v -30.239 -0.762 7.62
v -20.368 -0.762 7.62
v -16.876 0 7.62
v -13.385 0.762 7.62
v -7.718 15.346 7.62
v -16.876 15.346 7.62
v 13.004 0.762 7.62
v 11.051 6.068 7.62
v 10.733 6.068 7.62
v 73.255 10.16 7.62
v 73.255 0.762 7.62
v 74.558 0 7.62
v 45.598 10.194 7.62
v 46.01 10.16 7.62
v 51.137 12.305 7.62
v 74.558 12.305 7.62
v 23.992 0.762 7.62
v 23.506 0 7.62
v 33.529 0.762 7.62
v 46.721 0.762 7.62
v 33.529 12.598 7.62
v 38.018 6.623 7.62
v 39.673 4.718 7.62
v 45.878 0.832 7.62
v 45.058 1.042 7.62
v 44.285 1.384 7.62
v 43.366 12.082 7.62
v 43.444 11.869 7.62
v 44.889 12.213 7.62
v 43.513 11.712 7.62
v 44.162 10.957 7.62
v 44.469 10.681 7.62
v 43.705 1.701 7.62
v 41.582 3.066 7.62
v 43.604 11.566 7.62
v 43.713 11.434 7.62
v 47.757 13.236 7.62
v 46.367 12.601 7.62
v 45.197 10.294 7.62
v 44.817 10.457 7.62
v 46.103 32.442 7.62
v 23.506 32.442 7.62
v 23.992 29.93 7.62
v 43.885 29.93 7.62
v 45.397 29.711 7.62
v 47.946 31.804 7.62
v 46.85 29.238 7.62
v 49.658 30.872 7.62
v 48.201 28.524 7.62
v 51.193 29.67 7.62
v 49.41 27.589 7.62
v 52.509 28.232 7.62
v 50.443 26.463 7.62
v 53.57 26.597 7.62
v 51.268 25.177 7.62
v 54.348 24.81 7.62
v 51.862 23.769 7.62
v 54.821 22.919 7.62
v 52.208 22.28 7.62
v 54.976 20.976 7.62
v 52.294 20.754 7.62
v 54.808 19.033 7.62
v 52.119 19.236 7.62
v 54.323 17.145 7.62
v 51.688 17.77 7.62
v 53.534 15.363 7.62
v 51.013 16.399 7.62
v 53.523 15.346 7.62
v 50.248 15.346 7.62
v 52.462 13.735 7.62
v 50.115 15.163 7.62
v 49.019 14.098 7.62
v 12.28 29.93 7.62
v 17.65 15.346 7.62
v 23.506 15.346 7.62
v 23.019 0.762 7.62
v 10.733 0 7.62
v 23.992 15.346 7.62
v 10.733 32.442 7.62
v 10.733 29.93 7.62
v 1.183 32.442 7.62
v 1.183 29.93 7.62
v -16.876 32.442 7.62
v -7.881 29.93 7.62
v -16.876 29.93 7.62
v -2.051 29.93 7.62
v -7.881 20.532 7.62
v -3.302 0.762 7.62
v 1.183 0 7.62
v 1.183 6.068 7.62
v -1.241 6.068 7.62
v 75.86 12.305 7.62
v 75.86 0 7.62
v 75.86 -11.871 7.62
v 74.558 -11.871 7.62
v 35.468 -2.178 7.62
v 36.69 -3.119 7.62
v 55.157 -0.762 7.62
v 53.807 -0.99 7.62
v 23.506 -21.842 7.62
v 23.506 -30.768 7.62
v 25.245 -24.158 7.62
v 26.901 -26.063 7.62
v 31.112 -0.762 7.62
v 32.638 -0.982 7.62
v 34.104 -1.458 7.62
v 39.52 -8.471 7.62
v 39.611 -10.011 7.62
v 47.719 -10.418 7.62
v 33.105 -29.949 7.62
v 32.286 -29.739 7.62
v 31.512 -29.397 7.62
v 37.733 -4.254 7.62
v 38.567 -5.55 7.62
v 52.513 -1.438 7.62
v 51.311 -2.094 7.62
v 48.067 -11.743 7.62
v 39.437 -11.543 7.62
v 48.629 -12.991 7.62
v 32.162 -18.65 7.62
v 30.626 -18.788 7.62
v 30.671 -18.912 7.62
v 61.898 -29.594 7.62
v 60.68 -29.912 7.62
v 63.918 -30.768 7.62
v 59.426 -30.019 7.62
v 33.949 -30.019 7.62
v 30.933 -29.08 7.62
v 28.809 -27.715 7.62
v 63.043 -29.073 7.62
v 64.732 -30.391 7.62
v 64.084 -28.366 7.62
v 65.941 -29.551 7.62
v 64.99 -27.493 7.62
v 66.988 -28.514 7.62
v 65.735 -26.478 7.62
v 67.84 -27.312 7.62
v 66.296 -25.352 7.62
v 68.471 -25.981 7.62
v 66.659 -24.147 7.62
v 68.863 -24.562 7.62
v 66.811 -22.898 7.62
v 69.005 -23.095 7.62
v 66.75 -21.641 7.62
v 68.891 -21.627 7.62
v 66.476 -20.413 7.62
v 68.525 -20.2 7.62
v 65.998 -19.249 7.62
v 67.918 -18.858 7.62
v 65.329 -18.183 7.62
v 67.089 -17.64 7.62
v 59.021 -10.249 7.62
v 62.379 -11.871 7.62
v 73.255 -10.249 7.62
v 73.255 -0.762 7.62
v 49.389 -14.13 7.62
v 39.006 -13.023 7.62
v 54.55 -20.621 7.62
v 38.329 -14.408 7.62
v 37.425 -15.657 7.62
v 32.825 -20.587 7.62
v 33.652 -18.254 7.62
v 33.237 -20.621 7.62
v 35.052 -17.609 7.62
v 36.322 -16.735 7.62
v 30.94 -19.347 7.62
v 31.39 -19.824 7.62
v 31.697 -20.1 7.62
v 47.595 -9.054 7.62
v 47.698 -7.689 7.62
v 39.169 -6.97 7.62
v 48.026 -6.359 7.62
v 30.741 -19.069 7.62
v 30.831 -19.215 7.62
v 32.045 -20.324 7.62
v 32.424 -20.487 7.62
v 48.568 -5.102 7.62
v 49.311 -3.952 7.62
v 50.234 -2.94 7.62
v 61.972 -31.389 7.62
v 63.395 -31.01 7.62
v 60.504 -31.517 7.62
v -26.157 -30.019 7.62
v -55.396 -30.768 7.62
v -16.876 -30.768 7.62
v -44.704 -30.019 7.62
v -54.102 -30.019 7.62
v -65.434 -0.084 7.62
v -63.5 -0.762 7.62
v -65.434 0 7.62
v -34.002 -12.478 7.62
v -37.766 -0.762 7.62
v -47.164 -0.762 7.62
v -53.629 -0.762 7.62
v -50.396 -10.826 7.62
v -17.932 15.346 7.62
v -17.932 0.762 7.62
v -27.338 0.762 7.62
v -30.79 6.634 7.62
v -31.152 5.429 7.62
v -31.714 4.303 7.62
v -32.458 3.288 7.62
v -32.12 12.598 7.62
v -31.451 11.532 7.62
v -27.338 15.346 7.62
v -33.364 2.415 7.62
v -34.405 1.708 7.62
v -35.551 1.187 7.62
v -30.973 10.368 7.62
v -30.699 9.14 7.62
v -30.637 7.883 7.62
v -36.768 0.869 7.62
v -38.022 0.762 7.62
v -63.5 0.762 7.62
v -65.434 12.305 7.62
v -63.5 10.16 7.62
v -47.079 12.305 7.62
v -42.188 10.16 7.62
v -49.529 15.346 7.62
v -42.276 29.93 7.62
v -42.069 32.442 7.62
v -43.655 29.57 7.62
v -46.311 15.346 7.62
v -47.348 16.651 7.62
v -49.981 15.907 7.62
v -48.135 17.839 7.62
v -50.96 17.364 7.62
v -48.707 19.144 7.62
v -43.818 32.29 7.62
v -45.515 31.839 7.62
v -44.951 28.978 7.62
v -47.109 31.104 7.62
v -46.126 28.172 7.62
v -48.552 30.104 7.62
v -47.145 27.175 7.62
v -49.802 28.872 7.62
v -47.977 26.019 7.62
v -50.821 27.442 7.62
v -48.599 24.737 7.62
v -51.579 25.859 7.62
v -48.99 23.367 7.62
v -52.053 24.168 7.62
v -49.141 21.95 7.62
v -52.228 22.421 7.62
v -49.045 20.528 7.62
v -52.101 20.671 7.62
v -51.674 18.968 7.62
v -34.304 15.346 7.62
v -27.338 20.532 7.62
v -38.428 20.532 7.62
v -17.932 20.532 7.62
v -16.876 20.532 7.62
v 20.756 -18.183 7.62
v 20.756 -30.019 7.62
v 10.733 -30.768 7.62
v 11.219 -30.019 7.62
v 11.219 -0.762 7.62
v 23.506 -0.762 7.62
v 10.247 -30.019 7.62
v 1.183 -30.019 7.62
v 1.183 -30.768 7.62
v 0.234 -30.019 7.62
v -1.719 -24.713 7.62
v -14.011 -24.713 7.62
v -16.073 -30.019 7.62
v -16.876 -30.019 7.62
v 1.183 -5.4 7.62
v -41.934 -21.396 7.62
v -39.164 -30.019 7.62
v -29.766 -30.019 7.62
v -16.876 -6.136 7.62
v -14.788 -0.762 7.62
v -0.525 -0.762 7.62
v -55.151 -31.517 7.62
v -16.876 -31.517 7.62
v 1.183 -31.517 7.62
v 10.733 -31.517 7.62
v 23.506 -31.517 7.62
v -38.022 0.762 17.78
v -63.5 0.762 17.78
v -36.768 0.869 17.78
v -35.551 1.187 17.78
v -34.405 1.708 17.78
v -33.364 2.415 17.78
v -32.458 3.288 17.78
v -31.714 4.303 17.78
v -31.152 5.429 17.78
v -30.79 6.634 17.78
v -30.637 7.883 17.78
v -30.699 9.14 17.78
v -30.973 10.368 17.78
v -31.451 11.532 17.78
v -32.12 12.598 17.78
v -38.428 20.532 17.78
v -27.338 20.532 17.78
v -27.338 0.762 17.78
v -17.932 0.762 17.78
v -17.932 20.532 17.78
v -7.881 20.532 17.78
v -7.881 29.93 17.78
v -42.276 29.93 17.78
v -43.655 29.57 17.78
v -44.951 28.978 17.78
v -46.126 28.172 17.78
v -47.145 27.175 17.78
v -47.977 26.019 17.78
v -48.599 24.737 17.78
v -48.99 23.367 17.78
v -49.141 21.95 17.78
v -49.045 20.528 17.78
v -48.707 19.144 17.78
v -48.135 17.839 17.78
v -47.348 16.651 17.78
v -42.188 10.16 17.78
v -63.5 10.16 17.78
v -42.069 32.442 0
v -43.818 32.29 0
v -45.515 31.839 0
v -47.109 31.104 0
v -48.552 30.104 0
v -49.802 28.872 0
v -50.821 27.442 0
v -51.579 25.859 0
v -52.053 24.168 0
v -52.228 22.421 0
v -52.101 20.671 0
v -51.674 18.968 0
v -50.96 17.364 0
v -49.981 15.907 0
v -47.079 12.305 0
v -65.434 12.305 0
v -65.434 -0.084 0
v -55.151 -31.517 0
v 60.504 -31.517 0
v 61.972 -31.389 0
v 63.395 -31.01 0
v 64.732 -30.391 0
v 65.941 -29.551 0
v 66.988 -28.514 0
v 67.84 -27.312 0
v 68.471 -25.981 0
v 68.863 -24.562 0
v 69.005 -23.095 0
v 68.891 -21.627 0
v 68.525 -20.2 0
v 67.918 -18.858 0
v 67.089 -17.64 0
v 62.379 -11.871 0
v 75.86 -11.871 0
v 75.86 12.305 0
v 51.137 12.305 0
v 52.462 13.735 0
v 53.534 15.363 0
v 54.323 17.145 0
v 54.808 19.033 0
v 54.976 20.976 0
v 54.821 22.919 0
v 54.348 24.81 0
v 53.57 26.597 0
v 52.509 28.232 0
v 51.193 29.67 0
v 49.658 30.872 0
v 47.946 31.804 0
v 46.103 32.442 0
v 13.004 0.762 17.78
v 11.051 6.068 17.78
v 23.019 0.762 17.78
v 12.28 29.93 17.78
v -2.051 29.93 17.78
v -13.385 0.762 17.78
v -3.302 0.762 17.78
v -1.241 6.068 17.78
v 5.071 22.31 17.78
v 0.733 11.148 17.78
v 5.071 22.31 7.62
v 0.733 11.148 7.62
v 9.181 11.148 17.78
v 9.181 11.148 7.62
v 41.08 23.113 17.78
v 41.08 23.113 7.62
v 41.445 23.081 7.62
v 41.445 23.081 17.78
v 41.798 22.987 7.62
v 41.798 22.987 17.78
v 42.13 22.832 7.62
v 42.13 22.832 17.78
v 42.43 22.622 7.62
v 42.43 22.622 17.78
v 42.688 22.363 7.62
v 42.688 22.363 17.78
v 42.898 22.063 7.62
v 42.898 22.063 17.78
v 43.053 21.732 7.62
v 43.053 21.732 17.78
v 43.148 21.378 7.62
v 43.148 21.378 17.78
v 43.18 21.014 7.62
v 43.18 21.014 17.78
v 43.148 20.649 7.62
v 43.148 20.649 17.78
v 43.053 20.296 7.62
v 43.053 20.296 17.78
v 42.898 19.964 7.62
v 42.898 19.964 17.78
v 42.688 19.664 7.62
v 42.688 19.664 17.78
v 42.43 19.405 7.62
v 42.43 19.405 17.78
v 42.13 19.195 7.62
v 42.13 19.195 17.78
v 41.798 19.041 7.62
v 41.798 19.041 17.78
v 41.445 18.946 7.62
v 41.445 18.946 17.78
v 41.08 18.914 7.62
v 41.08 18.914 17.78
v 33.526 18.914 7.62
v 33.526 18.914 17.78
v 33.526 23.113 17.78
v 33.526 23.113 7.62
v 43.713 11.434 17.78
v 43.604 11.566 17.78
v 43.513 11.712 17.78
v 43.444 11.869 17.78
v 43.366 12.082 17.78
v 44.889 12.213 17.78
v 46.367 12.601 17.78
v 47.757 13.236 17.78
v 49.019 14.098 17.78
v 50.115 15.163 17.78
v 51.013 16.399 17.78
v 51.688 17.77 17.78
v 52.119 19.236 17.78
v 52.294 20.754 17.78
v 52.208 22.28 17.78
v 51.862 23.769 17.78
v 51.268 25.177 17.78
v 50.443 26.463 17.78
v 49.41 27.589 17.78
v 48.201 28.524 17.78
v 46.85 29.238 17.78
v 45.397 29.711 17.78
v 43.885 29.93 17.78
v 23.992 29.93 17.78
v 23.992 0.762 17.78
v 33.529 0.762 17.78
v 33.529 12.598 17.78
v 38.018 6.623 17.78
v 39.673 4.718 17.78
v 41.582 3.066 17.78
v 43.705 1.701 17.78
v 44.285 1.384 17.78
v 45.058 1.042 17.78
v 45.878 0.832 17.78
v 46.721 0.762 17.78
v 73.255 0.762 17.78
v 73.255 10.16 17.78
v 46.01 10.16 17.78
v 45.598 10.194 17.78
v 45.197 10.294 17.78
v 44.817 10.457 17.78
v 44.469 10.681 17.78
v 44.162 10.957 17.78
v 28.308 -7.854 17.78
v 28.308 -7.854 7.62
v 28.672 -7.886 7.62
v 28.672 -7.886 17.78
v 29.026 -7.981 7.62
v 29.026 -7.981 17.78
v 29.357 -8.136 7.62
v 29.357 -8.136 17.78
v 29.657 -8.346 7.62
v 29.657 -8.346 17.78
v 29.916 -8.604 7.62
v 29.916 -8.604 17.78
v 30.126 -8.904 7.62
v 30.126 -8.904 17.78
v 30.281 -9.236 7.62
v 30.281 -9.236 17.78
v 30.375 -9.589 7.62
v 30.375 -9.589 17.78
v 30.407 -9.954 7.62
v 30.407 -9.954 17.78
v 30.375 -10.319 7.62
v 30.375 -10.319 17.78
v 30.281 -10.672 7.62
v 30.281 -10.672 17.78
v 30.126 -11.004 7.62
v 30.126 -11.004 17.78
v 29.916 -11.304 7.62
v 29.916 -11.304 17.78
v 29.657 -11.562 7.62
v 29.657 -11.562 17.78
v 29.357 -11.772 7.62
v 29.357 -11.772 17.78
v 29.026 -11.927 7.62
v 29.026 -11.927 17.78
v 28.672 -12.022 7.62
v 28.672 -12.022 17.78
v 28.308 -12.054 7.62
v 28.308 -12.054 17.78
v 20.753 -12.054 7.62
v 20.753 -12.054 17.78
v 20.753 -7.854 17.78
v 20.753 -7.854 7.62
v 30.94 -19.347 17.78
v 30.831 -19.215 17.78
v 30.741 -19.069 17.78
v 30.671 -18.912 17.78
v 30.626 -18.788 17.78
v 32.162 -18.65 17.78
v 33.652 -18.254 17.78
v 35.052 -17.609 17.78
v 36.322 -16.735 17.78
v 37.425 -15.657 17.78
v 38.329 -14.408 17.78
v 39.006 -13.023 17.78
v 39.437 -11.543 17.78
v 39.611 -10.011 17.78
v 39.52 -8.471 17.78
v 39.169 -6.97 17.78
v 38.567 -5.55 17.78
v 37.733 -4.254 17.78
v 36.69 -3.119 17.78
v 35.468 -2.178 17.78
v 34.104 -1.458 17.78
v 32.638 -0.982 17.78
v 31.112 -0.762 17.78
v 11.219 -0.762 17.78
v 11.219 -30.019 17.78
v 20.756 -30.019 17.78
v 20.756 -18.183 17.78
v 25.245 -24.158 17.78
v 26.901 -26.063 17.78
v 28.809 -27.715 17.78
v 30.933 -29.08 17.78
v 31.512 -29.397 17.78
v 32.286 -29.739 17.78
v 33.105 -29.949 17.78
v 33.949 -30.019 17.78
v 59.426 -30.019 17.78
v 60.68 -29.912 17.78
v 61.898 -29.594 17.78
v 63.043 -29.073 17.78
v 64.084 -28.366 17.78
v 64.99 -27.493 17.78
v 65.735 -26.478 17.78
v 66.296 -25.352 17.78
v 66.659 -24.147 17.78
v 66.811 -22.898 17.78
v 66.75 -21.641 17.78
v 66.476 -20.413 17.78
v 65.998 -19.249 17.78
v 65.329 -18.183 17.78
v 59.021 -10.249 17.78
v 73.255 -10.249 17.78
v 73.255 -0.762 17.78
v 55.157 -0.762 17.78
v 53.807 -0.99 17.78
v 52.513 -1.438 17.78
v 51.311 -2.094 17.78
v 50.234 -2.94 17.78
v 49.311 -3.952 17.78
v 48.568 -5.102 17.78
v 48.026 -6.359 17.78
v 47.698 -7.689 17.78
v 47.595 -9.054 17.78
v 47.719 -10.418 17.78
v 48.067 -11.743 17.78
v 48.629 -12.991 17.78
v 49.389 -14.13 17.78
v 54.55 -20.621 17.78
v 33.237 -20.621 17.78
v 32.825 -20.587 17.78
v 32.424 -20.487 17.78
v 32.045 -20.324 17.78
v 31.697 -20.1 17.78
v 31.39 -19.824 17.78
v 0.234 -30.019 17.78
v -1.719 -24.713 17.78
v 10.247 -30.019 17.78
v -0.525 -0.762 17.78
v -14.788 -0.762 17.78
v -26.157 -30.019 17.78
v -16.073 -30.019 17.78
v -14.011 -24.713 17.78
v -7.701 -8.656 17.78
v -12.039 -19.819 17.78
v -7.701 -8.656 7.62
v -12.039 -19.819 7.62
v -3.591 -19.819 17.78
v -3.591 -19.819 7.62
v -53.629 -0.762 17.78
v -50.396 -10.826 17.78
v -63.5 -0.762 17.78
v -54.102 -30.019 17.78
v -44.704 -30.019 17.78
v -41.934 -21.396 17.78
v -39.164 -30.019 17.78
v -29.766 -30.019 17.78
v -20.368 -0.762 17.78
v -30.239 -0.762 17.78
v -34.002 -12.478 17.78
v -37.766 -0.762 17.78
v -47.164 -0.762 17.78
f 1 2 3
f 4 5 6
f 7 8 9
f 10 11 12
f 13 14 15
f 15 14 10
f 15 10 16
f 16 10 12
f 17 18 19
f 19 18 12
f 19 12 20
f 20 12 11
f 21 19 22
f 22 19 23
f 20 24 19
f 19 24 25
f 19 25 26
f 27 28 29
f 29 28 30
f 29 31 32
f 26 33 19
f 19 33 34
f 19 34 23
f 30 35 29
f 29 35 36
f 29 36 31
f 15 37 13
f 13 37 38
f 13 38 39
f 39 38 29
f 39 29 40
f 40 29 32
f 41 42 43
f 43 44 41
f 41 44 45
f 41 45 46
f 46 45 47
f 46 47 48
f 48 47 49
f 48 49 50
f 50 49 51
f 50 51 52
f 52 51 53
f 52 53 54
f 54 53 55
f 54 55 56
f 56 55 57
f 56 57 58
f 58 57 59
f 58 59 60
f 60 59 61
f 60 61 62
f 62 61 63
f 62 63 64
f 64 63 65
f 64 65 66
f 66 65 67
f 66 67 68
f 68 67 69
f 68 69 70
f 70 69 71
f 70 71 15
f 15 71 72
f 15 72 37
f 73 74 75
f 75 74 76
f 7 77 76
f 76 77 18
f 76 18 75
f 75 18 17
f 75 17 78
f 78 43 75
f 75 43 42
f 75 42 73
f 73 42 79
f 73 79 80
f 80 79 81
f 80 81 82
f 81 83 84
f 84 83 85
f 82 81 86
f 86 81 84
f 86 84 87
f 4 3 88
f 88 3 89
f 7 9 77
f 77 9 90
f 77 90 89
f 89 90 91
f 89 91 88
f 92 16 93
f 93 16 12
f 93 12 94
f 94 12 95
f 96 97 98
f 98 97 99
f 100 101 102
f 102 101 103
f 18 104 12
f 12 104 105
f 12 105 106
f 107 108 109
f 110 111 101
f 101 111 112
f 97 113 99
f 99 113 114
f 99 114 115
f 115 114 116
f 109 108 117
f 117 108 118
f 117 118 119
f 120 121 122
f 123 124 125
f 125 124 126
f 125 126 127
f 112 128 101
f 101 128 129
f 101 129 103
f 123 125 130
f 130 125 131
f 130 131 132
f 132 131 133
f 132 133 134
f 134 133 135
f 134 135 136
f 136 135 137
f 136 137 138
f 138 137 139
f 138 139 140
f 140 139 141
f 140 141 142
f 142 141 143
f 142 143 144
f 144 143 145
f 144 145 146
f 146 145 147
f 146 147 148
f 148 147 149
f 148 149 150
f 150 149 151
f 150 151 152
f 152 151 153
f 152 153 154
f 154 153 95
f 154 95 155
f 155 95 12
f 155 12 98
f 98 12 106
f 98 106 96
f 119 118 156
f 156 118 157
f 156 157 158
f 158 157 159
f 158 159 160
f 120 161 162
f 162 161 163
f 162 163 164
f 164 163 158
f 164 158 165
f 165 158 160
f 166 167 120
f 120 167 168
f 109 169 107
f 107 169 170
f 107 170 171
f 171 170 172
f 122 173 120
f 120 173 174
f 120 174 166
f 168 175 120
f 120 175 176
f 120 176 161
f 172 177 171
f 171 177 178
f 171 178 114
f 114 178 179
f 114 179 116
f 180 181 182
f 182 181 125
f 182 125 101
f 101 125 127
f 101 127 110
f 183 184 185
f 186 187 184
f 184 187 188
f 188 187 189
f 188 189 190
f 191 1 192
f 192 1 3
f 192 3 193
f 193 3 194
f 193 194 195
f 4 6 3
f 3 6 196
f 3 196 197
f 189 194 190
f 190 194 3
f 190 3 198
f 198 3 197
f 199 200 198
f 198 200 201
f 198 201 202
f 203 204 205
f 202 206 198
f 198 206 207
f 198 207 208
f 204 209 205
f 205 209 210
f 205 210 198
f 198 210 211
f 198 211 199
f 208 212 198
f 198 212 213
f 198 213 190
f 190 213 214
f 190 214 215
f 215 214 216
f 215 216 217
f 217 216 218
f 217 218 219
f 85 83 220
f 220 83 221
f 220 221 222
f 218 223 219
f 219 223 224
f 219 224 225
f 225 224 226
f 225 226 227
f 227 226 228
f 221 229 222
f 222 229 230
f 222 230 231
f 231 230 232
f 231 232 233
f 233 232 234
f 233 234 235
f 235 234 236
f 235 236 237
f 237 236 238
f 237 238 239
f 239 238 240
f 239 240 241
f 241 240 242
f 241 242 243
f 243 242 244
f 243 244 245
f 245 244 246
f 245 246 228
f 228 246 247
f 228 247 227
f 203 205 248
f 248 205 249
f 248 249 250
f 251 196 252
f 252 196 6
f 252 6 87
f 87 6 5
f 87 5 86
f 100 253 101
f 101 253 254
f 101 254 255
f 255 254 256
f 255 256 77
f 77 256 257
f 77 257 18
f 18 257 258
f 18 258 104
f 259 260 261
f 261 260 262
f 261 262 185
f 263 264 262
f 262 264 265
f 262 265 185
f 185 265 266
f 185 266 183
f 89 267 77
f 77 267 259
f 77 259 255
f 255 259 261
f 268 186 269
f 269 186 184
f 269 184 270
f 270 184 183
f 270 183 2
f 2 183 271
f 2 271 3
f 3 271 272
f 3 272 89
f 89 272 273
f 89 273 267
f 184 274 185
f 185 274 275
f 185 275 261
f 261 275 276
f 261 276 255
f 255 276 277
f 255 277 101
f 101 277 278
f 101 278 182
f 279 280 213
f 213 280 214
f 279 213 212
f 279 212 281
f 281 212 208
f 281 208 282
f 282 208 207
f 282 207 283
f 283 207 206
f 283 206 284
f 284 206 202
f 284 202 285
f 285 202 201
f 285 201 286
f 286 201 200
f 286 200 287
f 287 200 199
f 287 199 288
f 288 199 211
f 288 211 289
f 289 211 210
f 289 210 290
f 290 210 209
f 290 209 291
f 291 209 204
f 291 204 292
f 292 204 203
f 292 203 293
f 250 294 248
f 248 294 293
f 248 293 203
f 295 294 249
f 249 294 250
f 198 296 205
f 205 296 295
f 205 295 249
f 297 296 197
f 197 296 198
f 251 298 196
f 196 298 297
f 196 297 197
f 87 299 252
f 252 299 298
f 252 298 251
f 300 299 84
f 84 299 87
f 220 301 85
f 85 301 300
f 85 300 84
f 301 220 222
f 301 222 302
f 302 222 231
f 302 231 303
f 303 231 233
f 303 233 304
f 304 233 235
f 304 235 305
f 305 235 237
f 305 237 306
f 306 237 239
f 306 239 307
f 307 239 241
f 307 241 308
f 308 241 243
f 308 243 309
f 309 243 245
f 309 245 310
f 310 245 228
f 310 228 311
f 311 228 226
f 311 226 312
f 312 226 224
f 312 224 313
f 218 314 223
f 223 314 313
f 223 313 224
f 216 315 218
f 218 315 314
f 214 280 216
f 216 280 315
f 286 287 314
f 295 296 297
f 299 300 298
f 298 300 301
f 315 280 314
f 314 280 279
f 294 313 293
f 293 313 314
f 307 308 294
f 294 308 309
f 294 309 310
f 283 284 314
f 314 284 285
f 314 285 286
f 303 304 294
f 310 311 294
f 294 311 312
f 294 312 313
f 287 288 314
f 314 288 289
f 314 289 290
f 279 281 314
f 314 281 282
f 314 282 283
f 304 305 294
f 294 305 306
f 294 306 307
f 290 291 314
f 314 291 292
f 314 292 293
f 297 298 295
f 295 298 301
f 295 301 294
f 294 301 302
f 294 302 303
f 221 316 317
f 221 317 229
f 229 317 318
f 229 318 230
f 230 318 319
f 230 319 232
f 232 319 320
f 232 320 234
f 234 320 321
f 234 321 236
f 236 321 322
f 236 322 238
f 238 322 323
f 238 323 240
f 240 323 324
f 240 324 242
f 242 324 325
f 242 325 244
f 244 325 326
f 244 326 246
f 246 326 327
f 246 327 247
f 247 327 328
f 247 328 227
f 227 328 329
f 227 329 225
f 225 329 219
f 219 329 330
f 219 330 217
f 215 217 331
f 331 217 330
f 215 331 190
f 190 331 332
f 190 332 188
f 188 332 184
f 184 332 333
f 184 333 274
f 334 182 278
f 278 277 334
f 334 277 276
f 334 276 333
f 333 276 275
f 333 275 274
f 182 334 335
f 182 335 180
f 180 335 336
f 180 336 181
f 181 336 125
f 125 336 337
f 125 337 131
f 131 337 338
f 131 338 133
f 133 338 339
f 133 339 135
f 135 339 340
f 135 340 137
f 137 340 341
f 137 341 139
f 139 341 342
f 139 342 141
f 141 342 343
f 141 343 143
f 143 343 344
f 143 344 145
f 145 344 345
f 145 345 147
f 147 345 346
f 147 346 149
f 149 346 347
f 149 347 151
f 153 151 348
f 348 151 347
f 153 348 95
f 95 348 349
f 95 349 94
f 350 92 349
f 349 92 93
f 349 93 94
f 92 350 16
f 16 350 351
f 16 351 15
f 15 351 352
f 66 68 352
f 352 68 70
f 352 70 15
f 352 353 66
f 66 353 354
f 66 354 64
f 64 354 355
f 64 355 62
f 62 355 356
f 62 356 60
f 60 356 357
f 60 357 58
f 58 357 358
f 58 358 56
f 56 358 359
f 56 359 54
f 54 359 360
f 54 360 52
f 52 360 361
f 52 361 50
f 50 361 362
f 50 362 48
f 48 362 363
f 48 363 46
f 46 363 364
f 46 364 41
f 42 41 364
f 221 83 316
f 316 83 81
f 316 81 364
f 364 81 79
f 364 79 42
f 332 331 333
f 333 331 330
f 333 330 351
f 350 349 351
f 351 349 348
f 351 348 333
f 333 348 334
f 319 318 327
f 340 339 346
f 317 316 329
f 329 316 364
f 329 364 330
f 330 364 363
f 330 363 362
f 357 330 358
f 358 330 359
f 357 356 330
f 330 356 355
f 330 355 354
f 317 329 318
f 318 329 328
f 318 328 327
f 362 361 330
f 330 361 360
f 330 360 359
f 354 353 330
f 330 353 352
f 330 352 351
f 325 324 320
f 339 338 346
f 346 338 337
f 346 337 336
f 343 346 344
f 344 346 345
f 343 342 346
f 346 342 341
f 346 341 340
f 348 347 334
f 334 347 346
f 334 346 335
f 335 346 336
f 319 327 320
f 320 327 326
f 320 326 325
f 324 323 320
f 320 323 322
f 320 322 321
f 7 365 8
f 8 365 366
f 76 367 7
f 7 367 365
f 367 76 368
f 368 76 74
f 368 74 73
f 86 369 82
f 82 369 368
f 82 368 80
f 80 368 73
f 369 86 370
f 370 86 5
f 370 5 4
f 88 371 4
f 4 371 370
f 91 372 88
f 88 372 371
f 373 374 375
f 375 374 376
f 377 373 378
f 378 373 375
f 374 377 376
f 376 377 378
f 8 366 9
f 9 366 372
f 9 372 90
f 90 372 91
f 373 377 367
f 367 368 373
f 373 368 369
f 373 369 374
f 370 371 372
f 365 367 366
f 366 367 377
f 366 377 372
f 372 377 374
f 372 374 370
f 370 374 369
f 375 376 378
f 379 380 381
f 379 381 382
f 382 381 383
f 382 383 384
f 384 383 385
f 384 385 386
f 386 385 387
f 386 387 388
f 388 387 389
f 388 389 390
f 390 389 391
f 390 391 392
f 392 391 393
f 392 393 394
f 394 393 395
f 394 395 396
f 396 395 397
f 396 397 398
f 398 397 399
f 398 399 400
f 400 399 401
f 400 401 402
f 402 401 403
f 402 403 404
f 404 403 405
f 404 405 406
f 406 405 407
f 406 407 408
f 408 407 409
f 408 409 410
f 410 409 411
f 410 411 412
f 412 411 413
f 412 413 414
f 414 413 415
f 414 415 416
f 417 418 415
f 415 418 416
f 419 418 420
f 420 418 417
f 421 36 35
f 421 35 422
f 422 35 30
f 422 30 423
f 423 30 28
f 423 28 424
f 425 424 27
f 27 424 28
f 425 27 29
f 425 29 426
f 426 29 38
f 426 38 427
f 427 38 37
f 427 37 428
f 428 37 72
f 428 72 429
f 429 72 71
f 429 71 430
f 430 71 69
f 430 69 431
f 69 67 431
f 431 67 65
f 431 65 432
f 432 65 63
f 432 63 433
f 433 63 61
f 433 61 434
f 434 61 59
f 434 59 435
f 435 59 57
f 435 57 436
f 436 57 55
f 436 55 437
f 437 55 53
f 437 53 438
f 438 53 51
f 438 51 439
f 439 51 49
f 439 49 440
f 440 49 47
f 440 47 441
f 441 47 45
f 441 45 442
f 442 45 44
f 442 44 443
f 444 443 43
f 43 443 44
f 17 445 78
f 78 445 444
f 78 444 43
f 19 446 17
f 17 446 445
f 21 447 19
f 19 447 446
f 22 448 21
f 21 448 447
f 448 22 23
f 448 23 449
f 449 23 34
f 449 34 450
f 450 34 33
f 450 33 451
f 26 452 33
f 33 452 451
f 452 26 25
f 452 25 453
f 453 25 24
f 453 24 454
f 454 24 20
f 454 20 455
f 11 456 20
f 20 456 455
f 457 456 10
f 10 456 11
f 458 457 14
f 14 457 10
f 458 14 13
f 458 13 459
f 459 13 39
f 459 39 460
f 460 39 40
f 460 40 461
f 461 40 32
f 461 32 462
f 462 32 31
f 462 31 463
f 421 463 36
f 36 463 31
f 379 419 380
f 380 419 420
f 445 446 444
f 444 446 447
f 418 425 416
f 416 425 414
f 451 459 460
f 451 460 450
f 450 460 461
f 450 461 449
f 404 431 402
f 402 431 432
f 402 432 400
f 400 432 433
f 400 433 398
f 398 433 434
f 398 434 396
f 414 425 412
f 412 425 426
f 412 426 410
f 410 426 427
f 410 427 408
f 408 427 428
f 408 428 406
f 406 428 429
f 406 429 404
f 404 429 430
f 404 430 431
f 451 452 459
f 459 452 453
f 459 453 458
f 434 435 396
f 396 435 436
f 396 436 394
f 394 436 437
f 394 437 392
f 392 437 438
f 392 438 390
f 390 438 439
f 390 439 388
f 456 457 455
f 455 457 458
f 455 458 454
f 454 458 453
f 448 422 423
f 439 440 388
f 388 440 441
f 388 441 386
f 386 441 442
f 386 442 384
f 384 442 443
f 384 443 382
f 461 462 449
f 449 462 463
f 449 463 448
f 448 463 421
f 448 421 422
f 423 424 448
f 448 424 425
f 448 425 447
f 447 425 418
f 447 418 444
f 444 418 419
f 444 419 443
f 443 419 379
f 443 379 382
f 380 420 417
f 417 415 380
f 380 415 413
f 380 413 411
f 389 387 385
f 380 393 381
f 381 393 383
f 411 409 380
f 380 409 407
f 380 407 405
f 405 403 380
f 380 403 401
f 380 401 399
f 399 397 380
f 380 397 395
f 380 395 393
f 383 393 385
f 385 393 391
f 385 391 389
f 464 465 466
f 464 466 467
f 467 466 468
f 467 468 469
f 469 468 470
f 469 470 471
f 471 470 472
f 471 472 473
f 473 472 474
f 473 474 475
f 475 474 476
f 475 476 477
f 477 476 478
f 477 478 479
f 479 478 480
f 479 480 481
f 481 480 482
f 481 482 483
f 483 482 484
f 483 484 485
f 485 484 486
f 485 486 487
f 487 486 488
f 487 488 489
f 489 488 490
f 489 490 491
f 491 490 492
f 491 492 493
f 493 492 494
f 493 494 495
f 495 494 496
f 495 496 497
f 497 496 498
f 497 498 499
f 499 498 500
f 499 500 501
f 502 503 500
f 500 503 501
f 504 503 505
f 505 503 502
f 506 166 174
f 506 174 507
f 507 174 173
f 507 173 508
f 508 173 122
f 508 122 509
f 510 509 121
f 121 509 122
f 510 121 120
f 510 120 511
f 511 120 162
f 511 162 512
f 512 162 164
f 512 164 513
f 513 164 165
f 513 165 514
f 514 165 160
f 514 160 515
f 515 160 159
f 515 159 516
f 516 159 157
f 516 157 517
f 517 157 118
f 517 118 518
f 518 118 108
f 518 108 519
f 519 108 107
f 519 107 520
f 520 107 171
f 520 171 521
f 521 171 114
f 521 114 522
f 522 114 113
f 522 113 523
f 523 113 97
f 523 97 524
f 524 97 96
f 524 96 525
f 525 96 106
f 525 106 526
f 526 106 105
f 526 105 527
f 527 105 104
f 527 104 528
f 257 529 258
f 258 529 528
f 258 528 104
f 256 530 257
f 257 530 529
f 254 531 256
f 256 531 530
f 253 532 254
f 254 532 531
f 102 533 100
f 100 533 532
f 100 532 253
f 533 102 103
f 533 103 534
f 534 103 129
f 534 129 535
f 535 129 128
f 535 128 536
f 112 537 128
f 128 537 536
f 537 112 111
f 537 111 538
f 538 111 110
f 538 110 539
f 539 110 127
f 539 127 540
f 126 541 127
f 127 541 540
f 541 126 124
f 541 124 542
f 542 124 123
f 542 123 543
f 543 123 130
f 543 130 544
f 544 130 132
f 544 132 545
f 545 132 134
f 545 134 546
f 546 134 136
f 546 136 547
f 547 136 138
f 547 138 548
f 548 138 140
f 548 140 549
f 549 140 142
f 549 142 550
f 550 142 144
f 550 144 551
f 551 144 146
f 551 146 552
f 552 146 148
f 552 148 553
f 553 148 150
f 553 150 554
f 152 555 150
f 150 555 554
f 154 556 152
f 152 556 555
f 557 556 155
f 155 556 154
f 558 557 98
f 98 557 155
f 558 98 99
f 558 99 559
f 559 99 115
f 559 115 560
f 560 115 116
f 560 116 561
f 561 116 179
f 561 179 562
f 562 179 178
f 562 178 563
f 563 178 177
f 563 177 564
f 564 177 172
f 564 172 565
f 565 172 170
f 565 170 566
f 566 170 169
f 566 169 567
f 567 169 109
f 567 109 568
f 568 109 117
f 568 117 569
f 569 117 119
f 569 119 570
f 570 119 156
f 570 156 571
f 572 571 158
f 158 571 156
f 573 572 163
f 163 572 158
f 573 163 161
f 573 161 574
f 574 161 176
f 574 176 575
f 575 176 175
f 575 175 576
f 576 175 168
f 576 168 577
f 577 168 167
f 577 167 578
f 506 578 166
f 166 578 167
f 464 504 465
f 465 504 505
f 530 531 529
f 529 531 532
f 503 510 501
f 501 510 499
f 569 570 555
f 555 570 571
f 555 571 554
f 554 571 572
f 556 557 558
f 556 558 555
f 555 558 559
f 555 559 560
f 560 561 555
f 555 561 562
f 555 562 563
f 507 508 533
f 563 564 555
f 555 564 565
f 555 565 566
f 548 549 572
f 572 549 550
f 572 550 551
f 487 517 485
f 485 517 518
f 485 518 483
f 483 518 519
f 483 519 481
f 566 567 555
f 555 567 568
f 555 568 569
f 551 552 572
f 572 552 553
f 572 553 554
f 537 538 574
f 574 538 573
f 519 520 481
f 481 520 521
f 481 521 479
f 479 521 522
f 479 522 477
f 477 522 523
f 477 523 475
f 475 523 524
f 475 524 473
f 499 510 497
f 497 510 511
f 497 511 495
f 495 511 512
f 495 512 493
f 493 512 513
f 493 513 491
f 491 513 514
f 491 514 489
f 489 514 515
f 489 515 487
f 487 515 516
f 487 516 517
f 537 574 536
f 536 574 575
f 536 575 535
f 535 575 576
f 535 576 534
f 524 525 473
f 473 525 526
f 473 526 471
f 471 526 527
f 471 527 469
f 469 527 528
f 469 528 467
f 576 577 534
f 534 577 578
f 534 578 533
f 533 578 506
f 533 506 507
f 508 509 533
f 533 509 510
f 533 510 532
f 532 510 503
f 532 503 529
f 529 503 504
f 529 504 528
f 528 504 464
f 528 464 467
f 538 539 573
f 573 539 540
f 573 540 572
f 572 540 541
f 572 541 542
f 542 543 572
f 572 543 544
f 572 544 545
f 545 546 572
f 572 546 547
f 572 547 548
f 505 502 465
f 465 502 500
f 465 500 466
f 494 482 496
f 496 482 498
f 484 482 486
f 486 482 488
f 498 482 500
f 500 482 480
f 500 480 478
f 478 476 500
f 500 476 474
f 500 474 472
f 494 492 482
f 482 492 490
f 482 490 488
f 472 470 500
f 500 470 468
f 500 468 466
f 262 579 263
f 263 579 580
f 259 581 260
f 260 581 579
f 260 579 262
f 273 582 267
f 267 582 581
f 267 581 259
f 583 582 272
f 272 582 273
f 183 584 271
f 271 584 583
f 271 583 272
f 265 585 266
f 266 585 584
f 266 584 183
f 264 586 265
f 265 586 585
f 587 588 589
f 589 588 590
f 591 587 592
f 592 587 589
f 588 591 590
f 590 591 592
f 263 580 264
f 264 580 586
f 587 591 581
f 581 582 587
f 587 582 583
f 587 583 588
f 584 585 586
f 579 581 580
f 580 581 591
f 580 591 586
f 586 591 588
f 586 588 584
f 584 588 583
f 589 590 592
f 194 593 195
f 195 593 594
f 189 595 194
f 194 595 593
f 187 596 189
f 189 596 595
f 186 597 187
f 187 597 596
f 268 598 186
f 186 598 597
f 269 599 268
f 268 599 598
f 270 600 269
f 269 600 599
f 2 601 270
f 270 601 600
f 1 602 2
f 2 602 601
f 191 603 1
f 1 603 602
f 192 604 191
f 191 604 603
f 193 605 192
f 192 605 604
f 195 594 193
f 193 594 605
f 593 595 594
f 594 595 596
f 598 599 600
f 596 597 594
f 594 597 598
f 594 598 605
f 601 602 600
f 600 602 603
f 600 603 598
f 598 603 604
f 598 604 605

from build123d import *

# Parameters (mm, degrees)
BOSS_EXTRUDE1_DEPTH   = 17.78
BOSS_EXTRUDE1_2_DEPTH = 17.78
BOSS_EXTRUDE1_3_DEPTH = 17.78
BOSS_EXTRUDE1_4_DEPTH = 17.78
BOSS_EXTRUDE1_5_DEPTH = 17.78
BOSS_EXTRUDE1_6_DEPTH = 17.78
BOSS_EXTRUDE2_DEPTH   = 7.62


with BuildPart() as part:
    # Sketch1 → Boss-Extrude1 (new body)
    with BuildSketch(Plane.XY):
        with BuildLine():
            Line((-63.5, 10.16), (-63.5, 0.762))
            Line((-63.5, 0.762), (-38.022245391, 0.762))
            ThreePointArc((-38.022245391, 0.762), (-31.409051973, 4.854056156), (-32.119852619, 12.598345226))
            Line((-32.119852619, 12.598345226), (-38.427776706, 20.532214336))
            Line((-38.427776706, 20.532214336), (-27.33774172, 20.532214336))
            Line((-27.33774172, 20.532214336), (-27.33774172, 0.762))
            Line((-27.33774172, 0.762), (-17.932333685, 0.762))
            Line((-17.932333685, 0.762), (-17.932333685, 20.532214336))
            Line((-17.932333685, 20.532214336), (-7.881253338, 20.532214336))
            Line((-7.881253338, 20.532214336), (-7.881253338, 29.930214336))
            Line((-7.881253338, 29.930214336), (-42.276317647, 29.930214336))
            ThreePointArc((-42.276317647, 29.930214336), (-48.598760185, 24.736726392), (-47.348213221, 16.650829474))
            Line((-47.348213221, 16.650829474), (-42.18759625, 10.16))
            Line((-42.18759625, 10.16), (-63.5, 10.16))
        make_face()
    extrude(amount=BOSS_EXTRUDE1_DEPTH)



with BuildPart() as body_2:
    # Sketch1 → Boss-Extrude1 2 (new body)
    with BuildSketch(Plane.XY):
        with BuildLine():
            Line((73.255000443, 0.762), (73.255000443, 10.16))
            Line((73.255000443, 10.16), (46.009984972, 10.16))
            ThreePointArc((46.009984972, 10.16), (45.003789062, 10.367797223), (44.162226788, 10.95718914))
            Line((44.162226788, 10.95718914), (43.712774585, 11.43370613))
            ThreePointArc((43.712774585, 11.43370613), (43.556066702, 11.637854646), (43.443733283, 11.869404165))
            Line((43.443733283, 11.869404165), (43.366111034, 12.081925607))
            ThreePointArc((43.366111034, 12.081925607), (52.294019037, 20.754281762), (43.884526544, 29.930214336))
            Line((43.884526544, 29.930214336), (23.991875044, 29.930214336))
            Line((23.991875044, 29.930214336), (23.991875044, 0.762))
            Line((23.991875044, 0.762), (33.528766448, 0.762))
            Line((33.528766448, 0.762), (33.528766448, 12.598345226))
            Line((33.528766448, 12.598345226), (38.01751427, 6.623276383))
            ThreePointArc((38.01751427, 6.623276383), (40.598056426, 3.858045423), (43.705112819, 1.7012189))
            Line((43.705112819, 1.7012189), (44.28460982, 1.384459427))
            ThreePointArc((44.28460982, 1.384459427), (45.463753928, 0.920074253), (46.72115082, 0.762))
            Line((46.72115082, 0.762), (73.255000443, 0.762))
        make_face()
        with BuildLine():
            ThreePointArc((41.080111034, 23.113168002), (43.179680202, 21.013598834), (41.080111034, 18.914029667))
            Line((41.080111034, 18.914029667), (33.525986314, 18.914029667))
            Line((33.525986314, 18.914029667), (33.525986314, 23.113168314))
            Line((33.525986314, 23.113168314), (41.080111034, 23.113168002))
        make_face(mode=Mode.SUBTRACT)
    extrude(amount=BOSS_EXTRUDE1_2_DEPTH)


with BuildPart() as body_3:
    # Sketch1 → Boss-Extrude1 3 (new body)
    with BuildSketch(Plane.XY):
        Polygon((-2.050542709, 29.930214336), (-13.385046463, 0.762), (-3.302420584, 0.762), (-1.240737517, 6.067535635), (11.051079885, 6.067535635), (13.004416536, 0.762), (23.01912578, 0.762), (12.280277522, 29.930214336), align=None)
        Polygon((9.180778587, 11.147535635), (0.733304445, 11.147535635), (5.071020227, 22.310214336), align=None, mode=Mode.SUBTRACT)
    extrude(amount=BOSS_EXTRUDE1_3_DEPTH)


with BuildPart() as body_4:
    # Sketch1 → Boss-Extrude1 4 (new body)
    with BuildSketch(Plane.XY):
        with BuildLine():
            ThreePointArc((59.426367642, -30.01899549), (66.03956106, -25.926939334), (65.328760414, -18.182650263))
            Line((65.328760414, -18.182650263), (59.020836327, -10.248781153))
            Line((59.020836327, -10.248781153), (73.255000443, -10.248781153))
            Line((73.255000443, -10.248781153), (73.255000443, -0.762))
            Line((73.255000443, -0.762), (55.156904328, -0.762))
            ThreePointArc((55.156904328, -0.762), (48.27077915, -5.719302433), (49.389233963, -14.130166015))
            Line((49.389233963, -14.130166015), (54.549850935, -20.62099549))
            Line((54.549850935, -20.62099549), (33.237447184, -20.62099549))
            ThreePointArc((33.237447184, -20.62099549), (32.231251275, -20.413198267), (31.389689001, -19.82380635))
            Line((31.389689001, -19.82380635), (30.940236798, -19.347289359))
            ThreePointArc((30.940236798, -19.347289359), (30.783528915, -19.143140844), (30.671195496, -18.911591325))
            Line((30.671195496, -18.911591325), (30.625924739, -18.787644819))
            ThreePointArc((30.625924739, -18.787644819), (39.610601796, -10.010542083), (31.111988756, -0.762))
            Line((31.111988756, -0.762), (11.219337256, -0.762))
            Line((11.219337256, -0.762), (11.219337256, -30.01899549))
            Line((11.219337256, -30.01899549), (20.756228661, -30.01899549))
            Line((20.756228661, -30.01899549), (20.756228661, -18.182650263))
            Line((20.756228661, -18.182650263), (25.244976483, -24.157719107))
            ThreePointArc((25.244976483, -24.157719107), (27.825518639, -26.922950067), (30.932575032, -29.079776589))
            Line((30.932575032, -29.079776589), (31.512072033, -29.396536062))
            ThreePointArc((31.512072033, -29.396536062), (32.69121614, -29.860921236), (33.948613033, -30.01899549))
            Line((33.948613033, -30.01899549), (59.426367642, -30.01899549))
        make_face()
        with BuildLine():
            ThreePointArc((28.307573334, -7.854488563), (30.407142414, -9.954057774), (28.307573247, -12.053626898))
            Line((28.307573247, -12.053626898), (20.753448527, -12.053626898))
            Line((20.753448527, -12.053626898), (20.753448527, -7.85448825))
            Line((20.753448527, -7.85448825), (28.307573334, -7.854488563))
        make_face(mode=Mode.SUBTRACT)
    extrude(amount=BOSS_EXTRUDE1_4_DEPTH)


with BuildPart() as body_5:
    # Sketch1 → Boss-Extrude1 5 (new body)
    with BuildSketch(Plane.XY):
        Polygon((-14.788261104, -0.762), (-26.15726441, -30.01899549), (-16.072938963, -30.01899549), (-14.011255896, -24.713459854), (-1.719438494, -24.713459854), (0.233898158, -30.01899549), (10.246907832, -30.01899549), (-0.524626942, -0.762), align=None)
        Polygon((-3.591439361, -19.818595252), (-12.038913502, -19.818595252), (-7.701197721, -8.655916551), align=None, mode=Mode.SUBTRACT)
    extrude(amount=BOSS_EXTRUDE1_5_DEPTH)


with BuildPart() as body_6:
    # Sketch1 → Boss-Extrude1 6 (new body)
    with BuildSketch(Plane.XY):
        Polygon((-53.629040398, -0.762), (-63.5, -0.762), (-54.102, -30.01899549), (-44.704, -30.01899549), (-41.933974753, -21.395605814), (-39.163949505, -30.01899549), (-29.765949505, -30.01899549), (-20.367949505, -0.762), (-30.238909107, -0.762), (-34.002210372, -12.477565879), (-37.765511637, -0.762), (-47.163511637, -0.762), (-50.396276017, -10.825946893), align=None)
    extrude(amount=BOSS_EXTRUDE1_6_DEPTH)


with BuildPart() as part_1:
    add(part.part)

    add(body_2.part)  # Boss-Extrude2 merges body 2

    add(body_3.part)  # Boss-Extrude2 merges body 3

    add(body_4.part)  # Boss-Extrude2 merges body 4

    add(body_5.part)  # Boss-Extrude2 merges body 5

    add(body_6.part)  # Boss-Extrude2 merges body 6
    # Sketch2 → Boss-Extrude2 (add)
    with BuildSketch(Plane.XY):
        with BuildLine():
            Line((-55.151201275, -31.516967273), (-65.434483981, -0.083873468))
            Line((-65.434483981, -0.083873468), (-65.434483981, 12.305447779))
            Line((-65.434483981, 12.305447779), (-47.078741234, 12.305447779))
            Line((-47.078741234, 12.305447779), (-49.980640842, 15.906912471))
            ThreePointArc((-49.980640842, 15.906912471), (-51.234201523, 26.666707013), (-42.069273563, 32.441539344))
            Line((-42.069273563, 32.441539344), (46.103426171, 32.441539344))
            ThreePointArc((46.103426171, 32.441539344), (54.623601335, 23.874155401), (51.136703514, 12.305447779))
            Line((51.136703514, 12.305447779), (75.860238392, 12.305447779))
            Line((75.860238392, 12.305447779), (75.860238392, -11.870528257))
            Line((75.860238392, -11.870528257), (62.378876642, -11.870528257))
            Line((62.378876642, -11.870528257), (67.089261913, -17.64019673))
            ThreePointArc((67.089261913, -17.64019673), (68.184246101, -26.660573767), (60.504295946, -31.516967273))
            Line((60.504295946, -31.516967273), (-55.151201275, -31.516967273))
        make_face()
    extrude(amount=BOSS_EXTRUDE2_DEPTH)


solid = part_1.part
